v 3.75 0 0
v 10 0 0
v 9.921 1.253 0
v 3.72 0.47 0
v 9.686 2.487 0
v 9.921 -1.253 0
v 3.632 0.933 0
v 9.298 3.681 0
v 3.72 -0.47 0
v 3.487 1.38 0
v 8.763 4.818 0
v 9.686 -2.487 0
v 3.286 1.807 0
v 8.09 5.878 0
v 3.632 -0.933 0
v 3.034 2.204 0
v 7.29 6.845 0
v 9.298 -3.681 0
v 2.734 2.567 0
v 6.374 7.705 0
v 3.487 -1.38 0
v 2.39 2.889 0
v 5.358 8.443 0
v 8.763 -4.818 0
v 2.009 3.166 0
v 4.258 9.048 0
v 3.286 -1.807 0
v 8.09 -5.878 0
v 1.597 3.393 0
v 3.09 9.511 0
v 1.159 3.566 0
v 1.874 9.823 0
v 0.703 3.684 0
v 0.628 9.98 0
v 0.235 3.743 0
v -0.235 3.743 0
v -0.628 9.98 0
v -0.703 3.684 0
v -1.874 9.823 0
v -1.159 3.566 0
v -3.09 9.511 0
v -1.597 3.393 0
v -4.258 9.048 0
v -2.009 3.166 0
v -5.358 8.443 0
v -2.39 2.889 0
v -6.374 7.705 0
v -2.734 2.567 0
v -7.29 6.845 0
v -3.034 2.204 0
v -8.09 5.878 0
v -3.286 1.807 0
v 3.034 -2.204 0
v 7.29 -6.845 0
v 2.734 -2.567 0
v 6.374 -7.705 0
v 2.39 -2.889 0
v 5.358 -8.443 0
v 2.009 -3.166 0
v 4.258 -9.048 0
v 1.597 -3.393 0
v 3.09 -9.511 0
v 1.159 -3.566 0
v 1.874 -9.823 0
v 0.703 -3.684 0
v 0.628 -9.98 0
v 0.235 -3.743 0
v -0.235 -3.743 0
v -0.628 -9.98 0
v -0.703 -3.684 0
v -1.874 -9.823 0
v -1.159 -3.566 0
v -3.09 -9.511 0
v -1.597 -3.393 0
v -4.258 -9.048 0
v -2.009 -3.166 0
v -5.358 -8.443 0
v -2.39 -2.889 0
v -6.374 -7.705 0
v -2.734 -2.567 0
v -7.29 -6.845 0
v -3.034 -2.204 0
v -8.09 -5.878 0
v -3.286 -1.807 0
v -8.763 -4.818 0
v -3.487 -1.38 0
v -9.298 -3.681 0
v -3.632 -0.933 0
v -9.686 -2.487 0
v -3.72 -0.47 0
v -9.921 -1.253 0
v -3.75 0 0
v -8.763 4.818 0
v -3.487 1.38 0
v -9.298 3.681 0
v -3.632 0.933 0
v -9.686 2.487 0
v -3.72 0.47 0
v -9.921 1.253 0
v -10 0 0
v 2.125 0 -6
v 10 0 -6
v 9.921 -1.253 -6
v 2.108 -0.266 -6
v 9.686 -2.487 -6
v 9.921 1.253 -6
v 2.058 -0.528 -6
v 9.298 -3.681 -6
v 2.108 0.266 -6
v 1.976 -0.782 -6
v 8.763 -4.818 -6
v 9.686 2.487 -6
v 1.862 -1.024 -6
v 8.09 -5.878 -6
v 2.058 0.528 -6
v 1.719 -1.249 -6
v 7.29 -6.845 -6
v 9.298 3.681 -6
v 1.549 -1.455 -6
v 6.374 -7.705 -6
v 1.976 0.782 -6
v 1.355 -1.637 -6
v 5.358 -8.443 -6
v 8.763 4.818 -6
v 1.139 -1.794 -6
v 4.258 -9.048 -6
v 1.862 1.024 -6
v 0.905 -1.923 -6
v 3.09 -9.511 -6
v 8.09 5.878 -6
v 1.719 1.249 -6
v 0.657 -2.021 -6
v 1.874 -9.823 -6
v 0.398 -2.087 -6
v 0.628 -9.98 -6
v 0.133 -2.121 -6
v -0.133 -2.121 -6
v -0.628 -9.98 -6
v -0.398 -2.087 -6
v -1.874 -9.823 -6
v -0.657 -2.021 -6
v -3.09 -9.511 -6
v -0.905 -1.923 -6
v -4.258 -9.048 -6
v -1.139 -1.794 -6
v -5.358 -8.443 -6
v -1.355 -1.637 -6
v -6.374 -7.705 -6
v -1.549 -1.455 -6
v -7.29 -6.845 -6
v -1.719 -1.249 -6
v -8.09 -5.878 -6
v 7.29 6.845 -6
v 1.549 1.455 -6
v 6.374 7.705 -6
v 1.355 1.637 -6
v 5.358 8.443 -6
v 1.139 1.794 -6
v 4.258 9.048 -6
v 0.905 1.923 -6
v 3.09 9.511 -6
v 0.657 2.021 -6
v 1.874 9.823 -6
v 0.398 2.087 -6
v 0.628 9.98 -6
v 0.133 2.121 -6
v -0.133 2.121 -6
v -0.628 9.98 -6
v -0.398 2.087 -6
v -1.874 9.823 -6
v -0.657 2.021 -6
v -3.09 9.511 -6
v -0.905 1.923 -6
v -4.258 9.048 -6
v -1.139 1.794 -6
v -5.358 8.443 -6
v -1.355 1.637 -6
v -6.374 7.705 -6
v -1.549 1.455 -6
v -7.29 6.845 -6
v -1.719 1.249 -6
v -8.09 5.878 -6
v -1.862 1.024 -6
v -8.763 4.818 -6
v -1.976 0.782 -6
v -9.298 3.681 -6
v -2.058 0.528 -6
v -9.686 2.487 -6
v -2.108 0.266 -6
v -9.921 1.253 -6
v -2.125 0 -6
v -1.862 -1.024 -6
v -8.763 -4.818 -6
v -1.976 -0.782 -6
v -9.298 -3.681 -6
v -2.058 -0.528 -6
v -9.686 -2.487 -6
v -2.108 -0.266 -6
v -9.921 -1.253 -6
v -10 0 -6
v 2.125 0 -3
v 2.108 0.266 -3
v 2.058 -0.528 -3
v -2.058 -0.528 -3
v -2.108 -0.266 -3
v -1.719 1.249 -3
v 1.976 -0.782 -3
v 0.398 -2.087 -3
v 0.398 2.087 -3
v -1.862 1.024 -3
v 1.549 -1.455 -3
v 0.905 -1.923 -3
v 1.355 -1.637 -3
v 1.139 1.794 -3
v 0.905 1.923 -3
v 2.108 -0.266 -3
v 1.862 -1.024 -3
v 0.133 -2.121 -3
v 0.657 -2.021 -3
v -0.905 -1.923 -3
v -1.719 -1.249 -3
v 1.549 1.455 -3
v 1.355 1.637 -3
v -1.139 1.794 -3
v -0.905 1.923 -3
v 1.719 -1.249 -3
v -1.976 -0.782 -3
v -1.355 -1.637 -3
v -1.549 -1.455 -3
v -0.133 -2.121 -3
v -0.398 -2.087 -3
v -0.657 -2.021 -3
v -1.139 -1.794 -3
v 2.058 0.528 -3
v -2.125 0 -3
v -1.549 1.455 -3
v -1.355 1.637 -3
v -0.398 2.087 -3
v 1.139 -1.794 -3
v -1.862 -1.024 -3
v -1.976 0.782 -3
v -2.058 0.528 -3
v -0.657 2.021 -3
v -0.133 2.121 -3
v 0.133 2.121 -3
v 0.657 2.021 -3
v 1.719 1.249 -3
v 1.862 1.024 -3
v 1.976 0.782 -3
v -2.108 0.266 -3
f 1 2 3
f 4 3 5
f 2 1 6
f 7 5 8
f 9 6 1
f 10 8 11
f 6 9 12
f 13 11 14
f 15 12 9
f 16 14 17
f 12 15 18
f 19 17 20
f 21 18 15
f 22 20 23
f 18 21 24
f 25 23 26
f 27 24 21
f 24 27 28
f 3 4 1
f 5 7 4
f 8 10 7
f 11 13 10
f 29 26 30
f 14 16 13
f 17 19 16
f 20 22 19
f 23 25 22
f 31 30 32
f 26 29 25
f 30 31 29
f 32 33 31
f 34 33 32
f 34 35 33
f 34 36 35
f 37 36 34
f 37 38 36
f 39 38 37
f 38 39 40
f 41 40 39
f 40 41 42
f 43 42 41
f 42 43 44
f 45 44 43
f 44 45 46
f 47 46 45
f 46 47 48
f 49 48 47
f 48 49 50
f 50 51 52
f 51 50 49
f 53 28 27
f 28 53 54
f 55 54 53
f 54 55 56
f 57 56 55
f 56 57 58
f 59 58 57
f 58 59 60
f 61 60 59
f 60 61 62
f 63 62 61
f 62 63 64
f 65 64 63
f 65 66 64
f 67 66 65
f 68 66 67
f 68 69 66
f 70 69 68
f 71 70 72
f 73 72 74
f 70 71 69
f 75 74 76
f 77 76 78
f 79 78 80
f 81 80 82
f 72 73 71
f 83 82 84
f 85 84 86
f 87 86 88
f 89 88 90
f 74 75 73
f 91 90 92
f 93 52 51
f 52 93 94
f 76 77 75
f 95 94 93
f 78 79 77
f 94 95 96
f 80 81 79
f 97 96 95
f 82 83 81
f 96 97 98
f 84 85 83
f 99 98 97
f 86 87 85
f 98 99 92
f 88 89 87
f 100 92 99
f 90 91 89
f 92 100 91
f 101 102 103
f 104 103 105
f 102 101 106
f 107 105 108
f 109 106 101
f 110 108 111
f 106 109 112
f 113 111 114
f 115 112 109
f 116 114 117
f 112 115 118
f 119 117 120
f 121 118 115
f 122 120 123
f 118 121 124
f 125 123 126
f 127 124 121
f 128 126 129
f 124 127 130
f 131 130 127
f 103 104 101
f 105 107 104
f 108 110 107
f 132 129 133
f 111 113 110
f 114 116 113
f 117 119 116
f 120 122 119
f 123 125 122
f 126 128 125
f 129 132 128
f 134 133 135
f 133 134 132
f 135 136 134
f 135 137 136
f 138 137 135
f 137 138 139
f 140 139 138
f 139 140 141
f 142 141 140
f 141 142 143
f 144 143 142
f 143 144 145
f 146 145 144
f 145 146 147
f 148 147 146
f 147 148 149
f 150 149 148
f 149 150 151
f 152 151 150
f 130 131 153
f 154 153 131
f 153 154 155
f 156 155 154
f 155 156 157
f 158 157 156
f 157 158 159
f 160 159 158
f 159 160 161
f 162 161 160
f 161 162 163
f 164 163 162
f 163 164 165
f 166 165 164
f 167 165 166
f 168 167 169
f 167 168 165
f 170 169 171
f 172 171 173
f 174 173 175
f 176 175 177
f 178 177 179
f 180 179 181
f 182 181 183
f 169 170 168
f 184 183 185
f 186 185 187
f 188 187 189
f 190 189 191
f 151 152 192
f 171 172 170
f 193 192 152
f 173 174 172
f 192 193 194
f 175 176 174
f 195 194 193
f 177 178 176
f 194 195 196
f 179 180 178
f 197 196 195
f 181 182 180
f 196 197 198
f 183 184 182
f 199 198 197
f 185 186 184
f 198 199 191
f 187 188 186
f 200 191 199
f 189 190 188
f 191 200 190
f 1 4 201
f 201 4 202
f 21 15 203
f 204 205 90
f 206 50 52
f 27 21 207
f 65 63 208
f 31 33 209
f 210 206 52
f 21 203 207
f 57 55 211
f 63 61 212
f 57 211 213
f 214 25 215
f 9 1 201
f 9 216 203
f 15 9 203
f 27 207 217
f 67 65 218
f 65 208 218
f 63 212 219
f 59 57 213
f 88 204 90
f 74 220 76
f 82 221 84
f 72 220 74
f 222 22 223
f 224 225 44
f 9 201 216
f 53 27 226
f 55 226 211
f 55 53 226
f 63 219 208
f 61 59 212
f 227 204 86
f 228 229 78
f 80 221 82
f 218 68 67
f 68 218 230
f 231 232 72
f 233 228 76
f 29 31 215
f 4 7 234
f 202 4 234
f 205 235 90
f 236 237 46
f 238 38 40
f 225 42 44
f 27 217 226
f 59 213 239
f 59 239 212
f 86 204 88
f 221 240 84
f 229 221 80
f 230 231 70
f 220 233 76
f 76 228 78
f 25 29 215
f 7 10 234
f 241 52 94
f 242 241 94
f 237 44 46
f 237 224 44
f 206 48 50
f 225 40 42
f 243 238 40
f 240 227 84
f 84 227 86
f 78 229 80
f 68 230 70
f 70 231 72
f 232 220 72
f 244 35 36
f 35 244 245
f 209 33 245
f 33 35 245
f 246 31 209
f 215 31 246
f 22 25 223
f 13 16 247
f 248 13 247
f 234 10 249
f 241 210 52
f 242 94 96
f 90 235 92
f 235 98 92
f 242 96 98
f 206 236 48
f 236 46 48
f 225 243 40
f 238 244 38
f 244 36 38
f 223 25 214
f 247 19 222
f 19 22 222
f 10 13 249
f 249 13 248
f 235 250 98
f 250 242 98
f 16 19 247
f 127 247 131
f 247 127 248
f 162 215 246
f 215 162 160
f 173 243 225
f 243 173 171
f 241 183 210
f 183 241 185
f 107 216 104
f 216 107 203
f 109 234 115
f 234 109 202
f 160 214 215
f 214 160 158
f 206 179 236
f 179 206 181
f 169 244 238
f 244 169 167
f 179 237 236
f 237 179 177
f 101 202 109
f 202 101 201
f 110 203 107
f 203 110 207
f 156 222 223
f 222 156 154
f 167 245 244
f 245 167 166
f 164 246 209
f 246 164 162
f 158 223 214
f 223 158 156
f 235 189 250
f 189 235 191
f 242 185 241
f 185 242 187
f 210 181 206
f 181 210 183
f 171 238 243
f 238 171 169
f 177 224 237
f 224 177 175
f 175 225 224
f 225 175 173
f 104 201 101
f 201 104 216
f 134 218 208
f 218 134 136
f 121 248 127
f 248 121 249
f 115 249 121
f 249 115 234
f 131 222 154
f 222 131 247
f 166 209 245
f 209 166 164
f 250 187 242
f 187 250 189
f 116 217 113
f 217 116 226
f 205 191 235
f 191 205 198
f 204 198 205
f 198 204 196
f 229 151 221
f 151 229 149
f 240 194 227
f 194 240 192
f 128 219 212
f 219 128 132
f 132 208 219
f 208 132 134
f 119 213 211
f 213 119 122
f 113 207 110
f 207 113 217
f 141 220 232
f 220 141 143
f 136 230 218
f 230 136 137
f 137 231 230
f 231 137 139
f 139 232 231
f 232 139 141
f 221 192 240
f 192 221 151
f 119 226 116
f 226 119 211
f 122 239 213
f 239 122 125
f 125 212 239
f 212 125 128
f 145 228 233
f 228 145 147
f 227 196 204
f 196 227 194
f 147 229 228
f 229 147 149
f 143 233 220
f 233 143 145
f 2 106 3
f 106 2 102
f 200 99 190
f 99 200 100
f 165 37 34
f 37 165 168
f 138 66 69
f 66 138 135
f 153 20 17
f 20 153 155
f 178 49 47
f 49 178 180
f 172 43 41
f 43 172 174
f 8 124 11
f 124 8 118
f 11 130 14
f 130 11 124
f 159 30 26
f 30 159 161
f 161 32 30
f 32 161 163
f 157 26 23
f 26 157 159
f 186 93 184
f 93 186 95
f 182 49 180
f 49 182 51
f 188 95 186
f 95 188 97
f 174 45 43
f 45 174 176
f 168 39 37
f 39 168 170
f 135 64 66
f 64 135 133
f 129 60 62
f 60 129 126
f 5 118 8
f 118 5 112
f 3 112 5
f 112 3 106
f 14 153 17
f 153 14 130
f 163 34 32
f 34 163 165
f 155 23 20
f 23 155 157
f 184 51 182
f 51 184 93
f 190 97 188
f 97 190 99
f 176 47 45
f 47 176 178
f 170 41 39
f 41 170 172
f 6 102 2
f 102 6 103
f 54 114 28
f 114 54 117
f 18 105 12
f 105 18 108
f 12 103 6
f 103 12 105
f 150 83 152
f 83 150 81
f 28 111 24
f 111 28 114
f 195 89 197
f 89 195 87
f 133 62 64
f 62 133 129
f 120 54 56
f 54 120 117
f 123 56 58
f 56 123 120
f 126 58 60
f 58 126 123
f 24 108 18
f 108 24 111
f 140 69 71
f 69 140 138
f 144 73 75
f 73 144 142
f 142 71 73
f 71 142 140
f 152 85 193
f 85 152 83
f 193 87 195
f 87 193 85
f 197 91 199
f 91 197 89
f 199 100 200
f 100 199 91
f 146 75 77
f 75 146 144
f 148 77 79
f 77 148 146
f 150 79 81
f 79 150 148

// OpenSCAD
$fn = 50;


difference() {
	union() {
		translate(v = [0, 0, -6.0000000000]) {
			cylinder(h = 6, r = 10.0000000000);
		}
		cylinder(h = 0, r = 16.0000000000);
	}
	union() {
		translate(v = [0, 0, 0]) {
			rotate(a = [0, 0, 0]) {
				difference() {
					union() {
						#translate(v = [0, 0, -6.0000000000]) {
							cylinder(h = 6, r = 2.0000000000);
						}
						#translate(v = [0, 0, -3]) {
							cylinder(h = 3, r = 10.0000000000, r1 = 2.1250000000, r2 = 3.7500000000);
						}
						#translate(v = [0, 0, -6.0000000000]) {
							cylinder(h = 6, r = 2.1250000000);
						}
						#translate(v = [0, 0, -6.0000000000]) {
							cylinder(h = 6, r = 2.0000000000);
						}
					}
					union();
				}
			}
		}
	}
}
